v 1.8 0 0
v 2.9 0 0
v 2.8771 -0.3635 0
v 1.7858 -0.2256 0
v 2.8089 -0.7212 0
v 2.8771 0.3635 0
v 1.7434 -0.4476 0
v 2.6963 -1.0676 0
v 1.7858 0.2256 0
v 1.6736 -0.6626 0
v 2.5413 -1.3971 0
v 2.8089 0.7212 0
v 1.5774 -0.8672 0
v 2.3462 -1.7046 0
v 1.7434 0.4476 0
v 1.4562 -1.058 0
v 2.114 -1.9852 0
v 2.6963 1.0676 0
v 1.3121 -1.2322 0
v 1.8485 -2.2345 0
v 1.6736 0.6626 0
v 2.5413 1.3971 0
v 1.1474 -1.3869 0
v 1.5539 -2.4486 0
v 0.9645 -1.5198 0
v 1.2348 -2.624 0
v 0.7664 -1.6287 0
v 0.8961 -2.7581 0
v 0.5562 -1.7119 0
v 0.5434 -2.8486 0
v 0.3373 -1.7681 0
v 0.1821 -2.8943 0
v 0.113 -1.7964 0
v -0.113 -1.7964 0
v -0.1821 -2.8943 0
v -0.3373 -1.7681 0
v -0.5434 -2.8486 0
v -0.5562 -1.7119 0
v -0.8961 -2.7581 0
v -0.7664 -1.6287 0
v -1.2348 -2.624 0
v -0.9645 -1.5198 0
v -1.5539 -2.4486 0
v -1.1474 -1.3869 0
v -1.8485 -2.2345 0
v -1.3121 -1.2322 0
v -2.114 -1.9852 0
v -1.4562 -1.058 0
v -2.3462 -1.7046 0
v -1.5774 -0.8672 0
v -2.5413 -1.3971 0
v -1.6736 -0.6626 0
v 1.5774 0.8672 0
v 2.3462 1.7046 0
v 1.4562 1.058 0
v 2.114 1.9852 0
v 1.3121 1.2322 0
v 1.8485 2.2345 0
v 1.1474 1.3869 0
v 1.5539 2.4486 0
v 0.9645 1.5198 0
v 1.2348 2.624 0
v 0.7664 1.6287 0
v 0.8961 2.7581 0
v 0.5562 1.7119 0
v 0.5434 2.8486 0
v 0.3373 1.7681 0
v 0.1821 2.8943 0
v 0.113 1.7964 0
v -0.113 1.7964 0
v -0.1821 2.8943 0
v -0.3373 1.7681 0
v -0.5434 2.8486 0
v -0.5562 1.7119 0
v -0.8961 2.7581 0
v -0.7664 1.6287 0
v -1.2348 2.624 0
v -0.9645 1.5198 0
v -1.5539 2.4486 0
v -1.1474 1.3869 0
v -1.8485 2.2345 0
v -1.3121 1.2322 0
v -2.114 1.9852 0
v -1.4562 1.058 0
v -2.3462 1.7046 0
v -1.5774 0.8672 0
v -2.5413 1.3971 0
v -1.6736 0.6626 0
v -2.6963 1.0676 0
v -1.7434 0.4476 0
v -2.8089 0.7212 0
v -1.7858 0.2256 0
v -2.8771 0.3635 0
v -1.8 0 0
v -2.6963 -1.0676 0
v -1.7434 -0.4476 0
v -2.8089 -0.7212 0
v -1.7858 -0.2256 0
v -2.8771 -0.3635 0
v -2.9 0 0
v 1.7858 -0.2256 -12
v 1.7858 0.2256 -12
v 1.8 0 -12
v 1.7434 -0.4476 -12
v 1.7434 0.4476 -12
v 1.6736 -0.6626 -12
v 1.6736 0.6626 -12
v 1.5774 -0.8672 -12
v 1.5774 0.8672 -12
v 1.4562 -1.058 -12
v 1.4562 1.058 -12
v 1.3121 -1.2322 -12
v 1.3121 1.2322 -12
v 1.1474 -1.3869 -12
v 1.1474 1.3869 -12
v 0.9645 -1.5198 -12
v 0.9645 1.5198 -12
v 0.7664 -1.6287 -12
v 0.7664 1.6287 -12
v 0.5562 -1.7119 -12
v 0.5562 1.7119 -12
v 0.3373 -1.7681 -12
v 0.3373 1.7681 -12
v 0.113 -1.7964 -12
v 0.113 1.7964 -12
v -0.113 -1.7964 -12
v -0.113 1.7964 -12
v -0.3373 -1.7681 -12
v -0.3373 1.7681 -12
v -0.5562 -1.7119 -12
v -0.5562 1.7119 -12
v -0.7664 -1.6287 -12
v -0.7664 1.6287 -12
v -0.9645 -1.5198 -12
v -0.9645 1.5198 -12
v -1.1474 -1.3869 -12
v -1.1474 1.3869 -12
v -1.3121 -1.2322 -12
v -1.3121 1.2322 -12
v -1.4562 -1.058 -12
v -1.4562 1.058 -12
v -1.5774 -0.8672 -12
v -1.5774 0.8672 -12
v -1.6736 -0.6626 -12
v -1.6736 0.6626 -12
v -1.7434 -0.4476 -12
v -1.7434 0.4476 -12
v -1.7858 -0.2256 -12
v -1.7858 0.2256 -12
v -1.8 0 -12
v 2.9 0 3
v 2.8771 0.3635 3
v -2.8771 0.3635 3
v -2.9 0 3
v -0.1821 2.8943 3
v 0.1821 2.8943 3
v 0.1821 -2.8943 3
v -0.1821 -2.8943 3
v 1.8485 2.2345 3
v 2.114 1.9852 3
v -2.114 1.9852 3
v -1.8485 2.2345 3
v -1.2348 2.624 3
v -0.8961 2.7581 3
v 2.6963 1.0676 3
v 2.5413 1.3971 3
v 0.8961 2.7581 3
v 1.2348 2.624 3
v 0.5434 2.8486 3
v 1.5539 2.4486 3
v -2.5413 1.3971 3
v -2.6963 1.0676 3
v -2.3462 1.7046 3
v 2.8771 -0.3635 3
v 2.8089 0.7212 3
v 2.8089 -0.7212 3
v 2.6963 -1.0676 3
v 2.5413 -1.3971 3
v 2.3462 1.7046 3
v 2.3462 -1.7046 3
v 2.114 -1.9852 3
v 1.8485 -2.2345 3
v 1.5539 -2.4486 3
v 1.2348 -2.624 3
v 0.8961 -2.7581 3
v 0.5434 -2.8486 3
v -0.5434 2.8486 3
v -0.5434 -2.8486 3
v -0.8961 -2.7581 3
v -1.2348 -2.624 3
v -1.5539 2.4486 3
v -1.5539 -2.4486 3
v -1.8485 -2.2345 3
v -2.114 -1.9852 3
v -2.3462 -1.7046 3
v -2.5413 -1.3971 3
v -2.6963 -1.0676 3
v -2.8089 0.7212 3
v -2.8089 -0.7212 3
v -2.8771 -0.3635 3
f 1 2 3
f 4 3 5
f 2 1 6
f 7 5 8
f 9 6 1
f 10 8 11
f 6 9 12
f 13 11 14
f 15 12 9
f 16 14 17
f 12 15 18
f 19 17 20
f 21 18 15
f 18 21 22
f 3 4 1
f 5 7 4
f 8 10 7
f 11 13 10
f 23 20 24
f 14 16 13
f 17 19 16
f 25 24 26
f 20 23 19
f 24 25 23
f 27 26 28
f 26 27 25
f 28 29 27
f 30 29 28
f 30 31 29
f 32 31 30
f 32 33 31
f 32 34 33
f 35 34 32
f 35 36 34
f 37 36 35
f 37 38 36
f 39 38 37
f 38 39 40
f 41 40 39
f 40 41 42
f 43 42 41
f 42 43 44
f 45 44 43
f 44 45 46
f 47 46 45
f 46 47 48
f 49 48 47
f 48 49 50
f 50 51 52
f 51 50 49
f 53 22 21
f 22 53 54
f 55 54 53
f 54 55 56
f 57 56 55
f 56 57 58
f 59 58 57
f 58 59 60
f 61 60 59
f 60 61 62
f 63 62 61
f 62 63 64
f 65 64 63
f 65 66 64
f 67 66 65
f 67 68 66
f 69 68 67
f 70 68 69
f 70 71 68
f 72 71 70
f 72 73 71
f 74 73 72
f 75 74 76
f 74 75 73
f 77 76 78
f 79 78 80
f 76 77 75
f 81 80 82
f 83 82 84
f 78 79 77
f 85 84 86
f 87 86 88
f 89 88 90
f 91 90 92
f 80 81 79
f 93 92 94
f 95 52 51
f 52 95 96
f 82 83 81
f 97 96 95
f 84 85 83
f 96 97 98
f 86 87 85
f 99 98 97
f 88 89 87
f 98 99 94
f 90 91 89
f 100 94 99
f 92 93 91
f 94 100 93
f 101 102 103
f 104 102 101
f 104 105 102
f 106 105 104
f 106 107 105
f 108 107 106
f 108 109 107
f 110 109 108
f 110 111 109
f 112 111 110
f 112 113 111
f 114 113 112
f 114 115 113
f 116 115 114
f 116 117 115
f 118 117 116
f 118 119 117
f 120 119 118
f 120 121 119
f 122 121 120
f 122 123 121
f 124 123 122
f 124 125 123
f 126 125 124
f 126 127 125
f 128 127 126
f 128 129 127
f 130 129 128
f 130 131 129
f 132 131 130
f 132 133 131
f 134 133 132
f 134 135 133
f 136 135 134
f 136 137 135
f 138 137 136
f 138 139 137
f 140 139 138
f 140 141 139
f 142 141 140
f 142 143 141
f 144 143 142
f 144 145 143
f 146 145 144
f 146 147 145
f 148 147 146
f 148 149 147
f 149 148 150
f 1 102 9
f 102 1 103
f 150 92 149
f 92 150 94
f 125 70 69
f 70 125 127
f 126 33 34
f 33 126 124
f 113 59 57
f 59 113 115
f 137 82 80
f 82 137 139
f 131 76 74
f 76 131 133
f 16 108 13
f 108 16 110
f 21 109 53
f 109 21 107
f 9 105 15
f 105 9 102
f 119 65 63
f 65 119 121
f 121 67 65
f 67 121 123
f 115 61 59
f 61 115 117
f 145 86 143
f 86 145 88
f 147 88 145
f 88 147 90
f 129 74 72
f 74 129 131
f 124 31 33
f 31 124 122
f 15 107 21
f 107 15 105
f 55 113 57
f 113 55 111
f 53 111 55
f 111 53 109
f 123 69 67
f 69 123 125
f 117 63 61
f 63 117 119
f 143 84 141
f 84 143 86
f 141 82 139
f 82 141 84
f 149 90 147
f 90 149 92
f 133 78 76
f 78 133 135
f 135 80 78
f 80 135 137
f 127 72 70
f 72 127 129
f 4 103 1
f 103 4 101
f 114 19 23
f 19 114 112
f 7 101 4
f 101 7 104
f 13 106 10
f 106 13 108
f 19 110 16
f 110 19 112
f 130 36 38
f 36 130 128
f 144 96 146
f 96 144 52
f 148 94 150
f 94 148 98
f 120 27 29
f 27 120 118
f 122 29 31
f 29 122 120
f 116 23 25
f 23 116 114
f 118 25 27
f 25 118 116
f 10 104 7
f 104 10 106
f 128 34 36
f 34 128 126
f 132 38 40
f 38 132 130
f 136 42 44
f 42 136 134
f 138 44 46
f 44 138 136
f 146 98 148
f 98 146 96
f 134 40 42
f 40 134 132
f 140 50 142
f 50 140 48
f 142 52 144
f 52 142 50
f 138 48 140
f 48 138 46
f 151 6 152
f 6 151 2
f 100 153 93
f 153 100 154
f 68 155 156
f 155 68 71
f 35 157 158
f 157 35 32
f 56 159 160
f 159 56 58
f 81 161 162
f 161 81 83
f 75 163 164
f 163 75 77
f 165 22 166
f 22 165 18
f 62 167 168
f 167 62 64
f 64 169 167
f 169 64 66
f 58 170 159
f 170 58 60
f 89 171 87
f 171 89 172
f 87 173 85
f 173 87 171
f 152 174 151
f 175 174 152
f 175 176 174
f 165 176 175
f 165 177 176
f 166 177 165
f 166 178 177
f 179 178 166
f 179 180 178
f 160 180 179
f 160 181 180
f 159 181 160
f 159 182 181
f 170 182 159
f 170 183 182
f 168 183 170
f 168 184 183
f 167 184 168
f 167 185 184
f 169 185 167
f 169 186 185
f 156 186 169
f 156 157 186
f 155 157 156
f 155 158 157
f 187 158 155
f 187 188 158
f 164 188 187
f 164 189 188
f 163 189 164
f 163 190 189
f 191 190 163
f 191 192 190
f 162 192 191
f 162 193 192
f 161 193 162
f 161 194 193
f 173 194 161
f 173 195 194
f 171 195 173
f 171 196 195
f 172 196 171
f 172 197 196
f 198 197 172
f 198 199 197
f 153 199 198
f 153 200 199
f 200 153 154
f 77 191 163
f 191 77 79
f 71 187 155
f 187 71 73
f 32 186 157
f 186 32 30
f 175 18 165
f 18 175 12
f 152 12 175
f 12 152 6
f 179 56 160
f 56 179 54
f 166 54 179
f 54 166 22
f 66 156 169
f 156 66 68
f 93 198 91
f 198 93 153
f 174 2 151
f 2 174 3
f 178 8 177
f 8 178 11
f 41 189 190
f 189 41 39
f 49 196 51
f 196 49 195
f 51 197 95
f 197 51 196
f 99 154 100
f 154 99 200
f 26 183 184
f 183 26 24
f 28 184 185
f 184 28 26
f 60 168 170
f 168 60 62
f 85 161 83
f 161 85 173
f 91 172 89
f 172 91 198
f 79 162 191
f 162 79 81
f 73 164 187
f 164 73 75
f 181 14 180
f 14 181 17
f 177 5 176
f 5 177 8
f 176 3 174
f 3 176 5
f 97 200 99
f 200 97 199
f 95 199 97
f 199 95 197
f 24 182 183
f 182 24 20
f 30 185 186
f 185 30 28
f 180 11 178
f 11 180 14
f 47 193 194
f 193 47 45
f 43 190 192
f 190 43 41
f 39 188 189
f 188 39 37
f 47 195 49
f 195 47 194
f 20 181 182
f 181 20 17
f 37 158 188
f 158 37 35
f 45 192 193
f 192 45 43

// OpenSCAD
$fn = 50;


difference() {
	union() {
		translate(v = [0, 0, 0]) {
			rotate(a = [0, 0, 0]) {
				difference() {
					union() {
						translate(v = [0, 0, -12.0000000000]) {
							cylinder(h = 12, r = 1.5000000000);
						}
						translate(v = [0, 0, -12.0000000000]) {
							cylinder(h = 12, r = 1.8000000000);
						}
						cylinder(h = 3, r = 2.9000000000);
						translate(v = [0, 0, -12.0000000000]) {
							cylinder(h = 12, r = 1.5000000000);
						}
					}
					union();
				}
			}
		}
	}
	union();
}
